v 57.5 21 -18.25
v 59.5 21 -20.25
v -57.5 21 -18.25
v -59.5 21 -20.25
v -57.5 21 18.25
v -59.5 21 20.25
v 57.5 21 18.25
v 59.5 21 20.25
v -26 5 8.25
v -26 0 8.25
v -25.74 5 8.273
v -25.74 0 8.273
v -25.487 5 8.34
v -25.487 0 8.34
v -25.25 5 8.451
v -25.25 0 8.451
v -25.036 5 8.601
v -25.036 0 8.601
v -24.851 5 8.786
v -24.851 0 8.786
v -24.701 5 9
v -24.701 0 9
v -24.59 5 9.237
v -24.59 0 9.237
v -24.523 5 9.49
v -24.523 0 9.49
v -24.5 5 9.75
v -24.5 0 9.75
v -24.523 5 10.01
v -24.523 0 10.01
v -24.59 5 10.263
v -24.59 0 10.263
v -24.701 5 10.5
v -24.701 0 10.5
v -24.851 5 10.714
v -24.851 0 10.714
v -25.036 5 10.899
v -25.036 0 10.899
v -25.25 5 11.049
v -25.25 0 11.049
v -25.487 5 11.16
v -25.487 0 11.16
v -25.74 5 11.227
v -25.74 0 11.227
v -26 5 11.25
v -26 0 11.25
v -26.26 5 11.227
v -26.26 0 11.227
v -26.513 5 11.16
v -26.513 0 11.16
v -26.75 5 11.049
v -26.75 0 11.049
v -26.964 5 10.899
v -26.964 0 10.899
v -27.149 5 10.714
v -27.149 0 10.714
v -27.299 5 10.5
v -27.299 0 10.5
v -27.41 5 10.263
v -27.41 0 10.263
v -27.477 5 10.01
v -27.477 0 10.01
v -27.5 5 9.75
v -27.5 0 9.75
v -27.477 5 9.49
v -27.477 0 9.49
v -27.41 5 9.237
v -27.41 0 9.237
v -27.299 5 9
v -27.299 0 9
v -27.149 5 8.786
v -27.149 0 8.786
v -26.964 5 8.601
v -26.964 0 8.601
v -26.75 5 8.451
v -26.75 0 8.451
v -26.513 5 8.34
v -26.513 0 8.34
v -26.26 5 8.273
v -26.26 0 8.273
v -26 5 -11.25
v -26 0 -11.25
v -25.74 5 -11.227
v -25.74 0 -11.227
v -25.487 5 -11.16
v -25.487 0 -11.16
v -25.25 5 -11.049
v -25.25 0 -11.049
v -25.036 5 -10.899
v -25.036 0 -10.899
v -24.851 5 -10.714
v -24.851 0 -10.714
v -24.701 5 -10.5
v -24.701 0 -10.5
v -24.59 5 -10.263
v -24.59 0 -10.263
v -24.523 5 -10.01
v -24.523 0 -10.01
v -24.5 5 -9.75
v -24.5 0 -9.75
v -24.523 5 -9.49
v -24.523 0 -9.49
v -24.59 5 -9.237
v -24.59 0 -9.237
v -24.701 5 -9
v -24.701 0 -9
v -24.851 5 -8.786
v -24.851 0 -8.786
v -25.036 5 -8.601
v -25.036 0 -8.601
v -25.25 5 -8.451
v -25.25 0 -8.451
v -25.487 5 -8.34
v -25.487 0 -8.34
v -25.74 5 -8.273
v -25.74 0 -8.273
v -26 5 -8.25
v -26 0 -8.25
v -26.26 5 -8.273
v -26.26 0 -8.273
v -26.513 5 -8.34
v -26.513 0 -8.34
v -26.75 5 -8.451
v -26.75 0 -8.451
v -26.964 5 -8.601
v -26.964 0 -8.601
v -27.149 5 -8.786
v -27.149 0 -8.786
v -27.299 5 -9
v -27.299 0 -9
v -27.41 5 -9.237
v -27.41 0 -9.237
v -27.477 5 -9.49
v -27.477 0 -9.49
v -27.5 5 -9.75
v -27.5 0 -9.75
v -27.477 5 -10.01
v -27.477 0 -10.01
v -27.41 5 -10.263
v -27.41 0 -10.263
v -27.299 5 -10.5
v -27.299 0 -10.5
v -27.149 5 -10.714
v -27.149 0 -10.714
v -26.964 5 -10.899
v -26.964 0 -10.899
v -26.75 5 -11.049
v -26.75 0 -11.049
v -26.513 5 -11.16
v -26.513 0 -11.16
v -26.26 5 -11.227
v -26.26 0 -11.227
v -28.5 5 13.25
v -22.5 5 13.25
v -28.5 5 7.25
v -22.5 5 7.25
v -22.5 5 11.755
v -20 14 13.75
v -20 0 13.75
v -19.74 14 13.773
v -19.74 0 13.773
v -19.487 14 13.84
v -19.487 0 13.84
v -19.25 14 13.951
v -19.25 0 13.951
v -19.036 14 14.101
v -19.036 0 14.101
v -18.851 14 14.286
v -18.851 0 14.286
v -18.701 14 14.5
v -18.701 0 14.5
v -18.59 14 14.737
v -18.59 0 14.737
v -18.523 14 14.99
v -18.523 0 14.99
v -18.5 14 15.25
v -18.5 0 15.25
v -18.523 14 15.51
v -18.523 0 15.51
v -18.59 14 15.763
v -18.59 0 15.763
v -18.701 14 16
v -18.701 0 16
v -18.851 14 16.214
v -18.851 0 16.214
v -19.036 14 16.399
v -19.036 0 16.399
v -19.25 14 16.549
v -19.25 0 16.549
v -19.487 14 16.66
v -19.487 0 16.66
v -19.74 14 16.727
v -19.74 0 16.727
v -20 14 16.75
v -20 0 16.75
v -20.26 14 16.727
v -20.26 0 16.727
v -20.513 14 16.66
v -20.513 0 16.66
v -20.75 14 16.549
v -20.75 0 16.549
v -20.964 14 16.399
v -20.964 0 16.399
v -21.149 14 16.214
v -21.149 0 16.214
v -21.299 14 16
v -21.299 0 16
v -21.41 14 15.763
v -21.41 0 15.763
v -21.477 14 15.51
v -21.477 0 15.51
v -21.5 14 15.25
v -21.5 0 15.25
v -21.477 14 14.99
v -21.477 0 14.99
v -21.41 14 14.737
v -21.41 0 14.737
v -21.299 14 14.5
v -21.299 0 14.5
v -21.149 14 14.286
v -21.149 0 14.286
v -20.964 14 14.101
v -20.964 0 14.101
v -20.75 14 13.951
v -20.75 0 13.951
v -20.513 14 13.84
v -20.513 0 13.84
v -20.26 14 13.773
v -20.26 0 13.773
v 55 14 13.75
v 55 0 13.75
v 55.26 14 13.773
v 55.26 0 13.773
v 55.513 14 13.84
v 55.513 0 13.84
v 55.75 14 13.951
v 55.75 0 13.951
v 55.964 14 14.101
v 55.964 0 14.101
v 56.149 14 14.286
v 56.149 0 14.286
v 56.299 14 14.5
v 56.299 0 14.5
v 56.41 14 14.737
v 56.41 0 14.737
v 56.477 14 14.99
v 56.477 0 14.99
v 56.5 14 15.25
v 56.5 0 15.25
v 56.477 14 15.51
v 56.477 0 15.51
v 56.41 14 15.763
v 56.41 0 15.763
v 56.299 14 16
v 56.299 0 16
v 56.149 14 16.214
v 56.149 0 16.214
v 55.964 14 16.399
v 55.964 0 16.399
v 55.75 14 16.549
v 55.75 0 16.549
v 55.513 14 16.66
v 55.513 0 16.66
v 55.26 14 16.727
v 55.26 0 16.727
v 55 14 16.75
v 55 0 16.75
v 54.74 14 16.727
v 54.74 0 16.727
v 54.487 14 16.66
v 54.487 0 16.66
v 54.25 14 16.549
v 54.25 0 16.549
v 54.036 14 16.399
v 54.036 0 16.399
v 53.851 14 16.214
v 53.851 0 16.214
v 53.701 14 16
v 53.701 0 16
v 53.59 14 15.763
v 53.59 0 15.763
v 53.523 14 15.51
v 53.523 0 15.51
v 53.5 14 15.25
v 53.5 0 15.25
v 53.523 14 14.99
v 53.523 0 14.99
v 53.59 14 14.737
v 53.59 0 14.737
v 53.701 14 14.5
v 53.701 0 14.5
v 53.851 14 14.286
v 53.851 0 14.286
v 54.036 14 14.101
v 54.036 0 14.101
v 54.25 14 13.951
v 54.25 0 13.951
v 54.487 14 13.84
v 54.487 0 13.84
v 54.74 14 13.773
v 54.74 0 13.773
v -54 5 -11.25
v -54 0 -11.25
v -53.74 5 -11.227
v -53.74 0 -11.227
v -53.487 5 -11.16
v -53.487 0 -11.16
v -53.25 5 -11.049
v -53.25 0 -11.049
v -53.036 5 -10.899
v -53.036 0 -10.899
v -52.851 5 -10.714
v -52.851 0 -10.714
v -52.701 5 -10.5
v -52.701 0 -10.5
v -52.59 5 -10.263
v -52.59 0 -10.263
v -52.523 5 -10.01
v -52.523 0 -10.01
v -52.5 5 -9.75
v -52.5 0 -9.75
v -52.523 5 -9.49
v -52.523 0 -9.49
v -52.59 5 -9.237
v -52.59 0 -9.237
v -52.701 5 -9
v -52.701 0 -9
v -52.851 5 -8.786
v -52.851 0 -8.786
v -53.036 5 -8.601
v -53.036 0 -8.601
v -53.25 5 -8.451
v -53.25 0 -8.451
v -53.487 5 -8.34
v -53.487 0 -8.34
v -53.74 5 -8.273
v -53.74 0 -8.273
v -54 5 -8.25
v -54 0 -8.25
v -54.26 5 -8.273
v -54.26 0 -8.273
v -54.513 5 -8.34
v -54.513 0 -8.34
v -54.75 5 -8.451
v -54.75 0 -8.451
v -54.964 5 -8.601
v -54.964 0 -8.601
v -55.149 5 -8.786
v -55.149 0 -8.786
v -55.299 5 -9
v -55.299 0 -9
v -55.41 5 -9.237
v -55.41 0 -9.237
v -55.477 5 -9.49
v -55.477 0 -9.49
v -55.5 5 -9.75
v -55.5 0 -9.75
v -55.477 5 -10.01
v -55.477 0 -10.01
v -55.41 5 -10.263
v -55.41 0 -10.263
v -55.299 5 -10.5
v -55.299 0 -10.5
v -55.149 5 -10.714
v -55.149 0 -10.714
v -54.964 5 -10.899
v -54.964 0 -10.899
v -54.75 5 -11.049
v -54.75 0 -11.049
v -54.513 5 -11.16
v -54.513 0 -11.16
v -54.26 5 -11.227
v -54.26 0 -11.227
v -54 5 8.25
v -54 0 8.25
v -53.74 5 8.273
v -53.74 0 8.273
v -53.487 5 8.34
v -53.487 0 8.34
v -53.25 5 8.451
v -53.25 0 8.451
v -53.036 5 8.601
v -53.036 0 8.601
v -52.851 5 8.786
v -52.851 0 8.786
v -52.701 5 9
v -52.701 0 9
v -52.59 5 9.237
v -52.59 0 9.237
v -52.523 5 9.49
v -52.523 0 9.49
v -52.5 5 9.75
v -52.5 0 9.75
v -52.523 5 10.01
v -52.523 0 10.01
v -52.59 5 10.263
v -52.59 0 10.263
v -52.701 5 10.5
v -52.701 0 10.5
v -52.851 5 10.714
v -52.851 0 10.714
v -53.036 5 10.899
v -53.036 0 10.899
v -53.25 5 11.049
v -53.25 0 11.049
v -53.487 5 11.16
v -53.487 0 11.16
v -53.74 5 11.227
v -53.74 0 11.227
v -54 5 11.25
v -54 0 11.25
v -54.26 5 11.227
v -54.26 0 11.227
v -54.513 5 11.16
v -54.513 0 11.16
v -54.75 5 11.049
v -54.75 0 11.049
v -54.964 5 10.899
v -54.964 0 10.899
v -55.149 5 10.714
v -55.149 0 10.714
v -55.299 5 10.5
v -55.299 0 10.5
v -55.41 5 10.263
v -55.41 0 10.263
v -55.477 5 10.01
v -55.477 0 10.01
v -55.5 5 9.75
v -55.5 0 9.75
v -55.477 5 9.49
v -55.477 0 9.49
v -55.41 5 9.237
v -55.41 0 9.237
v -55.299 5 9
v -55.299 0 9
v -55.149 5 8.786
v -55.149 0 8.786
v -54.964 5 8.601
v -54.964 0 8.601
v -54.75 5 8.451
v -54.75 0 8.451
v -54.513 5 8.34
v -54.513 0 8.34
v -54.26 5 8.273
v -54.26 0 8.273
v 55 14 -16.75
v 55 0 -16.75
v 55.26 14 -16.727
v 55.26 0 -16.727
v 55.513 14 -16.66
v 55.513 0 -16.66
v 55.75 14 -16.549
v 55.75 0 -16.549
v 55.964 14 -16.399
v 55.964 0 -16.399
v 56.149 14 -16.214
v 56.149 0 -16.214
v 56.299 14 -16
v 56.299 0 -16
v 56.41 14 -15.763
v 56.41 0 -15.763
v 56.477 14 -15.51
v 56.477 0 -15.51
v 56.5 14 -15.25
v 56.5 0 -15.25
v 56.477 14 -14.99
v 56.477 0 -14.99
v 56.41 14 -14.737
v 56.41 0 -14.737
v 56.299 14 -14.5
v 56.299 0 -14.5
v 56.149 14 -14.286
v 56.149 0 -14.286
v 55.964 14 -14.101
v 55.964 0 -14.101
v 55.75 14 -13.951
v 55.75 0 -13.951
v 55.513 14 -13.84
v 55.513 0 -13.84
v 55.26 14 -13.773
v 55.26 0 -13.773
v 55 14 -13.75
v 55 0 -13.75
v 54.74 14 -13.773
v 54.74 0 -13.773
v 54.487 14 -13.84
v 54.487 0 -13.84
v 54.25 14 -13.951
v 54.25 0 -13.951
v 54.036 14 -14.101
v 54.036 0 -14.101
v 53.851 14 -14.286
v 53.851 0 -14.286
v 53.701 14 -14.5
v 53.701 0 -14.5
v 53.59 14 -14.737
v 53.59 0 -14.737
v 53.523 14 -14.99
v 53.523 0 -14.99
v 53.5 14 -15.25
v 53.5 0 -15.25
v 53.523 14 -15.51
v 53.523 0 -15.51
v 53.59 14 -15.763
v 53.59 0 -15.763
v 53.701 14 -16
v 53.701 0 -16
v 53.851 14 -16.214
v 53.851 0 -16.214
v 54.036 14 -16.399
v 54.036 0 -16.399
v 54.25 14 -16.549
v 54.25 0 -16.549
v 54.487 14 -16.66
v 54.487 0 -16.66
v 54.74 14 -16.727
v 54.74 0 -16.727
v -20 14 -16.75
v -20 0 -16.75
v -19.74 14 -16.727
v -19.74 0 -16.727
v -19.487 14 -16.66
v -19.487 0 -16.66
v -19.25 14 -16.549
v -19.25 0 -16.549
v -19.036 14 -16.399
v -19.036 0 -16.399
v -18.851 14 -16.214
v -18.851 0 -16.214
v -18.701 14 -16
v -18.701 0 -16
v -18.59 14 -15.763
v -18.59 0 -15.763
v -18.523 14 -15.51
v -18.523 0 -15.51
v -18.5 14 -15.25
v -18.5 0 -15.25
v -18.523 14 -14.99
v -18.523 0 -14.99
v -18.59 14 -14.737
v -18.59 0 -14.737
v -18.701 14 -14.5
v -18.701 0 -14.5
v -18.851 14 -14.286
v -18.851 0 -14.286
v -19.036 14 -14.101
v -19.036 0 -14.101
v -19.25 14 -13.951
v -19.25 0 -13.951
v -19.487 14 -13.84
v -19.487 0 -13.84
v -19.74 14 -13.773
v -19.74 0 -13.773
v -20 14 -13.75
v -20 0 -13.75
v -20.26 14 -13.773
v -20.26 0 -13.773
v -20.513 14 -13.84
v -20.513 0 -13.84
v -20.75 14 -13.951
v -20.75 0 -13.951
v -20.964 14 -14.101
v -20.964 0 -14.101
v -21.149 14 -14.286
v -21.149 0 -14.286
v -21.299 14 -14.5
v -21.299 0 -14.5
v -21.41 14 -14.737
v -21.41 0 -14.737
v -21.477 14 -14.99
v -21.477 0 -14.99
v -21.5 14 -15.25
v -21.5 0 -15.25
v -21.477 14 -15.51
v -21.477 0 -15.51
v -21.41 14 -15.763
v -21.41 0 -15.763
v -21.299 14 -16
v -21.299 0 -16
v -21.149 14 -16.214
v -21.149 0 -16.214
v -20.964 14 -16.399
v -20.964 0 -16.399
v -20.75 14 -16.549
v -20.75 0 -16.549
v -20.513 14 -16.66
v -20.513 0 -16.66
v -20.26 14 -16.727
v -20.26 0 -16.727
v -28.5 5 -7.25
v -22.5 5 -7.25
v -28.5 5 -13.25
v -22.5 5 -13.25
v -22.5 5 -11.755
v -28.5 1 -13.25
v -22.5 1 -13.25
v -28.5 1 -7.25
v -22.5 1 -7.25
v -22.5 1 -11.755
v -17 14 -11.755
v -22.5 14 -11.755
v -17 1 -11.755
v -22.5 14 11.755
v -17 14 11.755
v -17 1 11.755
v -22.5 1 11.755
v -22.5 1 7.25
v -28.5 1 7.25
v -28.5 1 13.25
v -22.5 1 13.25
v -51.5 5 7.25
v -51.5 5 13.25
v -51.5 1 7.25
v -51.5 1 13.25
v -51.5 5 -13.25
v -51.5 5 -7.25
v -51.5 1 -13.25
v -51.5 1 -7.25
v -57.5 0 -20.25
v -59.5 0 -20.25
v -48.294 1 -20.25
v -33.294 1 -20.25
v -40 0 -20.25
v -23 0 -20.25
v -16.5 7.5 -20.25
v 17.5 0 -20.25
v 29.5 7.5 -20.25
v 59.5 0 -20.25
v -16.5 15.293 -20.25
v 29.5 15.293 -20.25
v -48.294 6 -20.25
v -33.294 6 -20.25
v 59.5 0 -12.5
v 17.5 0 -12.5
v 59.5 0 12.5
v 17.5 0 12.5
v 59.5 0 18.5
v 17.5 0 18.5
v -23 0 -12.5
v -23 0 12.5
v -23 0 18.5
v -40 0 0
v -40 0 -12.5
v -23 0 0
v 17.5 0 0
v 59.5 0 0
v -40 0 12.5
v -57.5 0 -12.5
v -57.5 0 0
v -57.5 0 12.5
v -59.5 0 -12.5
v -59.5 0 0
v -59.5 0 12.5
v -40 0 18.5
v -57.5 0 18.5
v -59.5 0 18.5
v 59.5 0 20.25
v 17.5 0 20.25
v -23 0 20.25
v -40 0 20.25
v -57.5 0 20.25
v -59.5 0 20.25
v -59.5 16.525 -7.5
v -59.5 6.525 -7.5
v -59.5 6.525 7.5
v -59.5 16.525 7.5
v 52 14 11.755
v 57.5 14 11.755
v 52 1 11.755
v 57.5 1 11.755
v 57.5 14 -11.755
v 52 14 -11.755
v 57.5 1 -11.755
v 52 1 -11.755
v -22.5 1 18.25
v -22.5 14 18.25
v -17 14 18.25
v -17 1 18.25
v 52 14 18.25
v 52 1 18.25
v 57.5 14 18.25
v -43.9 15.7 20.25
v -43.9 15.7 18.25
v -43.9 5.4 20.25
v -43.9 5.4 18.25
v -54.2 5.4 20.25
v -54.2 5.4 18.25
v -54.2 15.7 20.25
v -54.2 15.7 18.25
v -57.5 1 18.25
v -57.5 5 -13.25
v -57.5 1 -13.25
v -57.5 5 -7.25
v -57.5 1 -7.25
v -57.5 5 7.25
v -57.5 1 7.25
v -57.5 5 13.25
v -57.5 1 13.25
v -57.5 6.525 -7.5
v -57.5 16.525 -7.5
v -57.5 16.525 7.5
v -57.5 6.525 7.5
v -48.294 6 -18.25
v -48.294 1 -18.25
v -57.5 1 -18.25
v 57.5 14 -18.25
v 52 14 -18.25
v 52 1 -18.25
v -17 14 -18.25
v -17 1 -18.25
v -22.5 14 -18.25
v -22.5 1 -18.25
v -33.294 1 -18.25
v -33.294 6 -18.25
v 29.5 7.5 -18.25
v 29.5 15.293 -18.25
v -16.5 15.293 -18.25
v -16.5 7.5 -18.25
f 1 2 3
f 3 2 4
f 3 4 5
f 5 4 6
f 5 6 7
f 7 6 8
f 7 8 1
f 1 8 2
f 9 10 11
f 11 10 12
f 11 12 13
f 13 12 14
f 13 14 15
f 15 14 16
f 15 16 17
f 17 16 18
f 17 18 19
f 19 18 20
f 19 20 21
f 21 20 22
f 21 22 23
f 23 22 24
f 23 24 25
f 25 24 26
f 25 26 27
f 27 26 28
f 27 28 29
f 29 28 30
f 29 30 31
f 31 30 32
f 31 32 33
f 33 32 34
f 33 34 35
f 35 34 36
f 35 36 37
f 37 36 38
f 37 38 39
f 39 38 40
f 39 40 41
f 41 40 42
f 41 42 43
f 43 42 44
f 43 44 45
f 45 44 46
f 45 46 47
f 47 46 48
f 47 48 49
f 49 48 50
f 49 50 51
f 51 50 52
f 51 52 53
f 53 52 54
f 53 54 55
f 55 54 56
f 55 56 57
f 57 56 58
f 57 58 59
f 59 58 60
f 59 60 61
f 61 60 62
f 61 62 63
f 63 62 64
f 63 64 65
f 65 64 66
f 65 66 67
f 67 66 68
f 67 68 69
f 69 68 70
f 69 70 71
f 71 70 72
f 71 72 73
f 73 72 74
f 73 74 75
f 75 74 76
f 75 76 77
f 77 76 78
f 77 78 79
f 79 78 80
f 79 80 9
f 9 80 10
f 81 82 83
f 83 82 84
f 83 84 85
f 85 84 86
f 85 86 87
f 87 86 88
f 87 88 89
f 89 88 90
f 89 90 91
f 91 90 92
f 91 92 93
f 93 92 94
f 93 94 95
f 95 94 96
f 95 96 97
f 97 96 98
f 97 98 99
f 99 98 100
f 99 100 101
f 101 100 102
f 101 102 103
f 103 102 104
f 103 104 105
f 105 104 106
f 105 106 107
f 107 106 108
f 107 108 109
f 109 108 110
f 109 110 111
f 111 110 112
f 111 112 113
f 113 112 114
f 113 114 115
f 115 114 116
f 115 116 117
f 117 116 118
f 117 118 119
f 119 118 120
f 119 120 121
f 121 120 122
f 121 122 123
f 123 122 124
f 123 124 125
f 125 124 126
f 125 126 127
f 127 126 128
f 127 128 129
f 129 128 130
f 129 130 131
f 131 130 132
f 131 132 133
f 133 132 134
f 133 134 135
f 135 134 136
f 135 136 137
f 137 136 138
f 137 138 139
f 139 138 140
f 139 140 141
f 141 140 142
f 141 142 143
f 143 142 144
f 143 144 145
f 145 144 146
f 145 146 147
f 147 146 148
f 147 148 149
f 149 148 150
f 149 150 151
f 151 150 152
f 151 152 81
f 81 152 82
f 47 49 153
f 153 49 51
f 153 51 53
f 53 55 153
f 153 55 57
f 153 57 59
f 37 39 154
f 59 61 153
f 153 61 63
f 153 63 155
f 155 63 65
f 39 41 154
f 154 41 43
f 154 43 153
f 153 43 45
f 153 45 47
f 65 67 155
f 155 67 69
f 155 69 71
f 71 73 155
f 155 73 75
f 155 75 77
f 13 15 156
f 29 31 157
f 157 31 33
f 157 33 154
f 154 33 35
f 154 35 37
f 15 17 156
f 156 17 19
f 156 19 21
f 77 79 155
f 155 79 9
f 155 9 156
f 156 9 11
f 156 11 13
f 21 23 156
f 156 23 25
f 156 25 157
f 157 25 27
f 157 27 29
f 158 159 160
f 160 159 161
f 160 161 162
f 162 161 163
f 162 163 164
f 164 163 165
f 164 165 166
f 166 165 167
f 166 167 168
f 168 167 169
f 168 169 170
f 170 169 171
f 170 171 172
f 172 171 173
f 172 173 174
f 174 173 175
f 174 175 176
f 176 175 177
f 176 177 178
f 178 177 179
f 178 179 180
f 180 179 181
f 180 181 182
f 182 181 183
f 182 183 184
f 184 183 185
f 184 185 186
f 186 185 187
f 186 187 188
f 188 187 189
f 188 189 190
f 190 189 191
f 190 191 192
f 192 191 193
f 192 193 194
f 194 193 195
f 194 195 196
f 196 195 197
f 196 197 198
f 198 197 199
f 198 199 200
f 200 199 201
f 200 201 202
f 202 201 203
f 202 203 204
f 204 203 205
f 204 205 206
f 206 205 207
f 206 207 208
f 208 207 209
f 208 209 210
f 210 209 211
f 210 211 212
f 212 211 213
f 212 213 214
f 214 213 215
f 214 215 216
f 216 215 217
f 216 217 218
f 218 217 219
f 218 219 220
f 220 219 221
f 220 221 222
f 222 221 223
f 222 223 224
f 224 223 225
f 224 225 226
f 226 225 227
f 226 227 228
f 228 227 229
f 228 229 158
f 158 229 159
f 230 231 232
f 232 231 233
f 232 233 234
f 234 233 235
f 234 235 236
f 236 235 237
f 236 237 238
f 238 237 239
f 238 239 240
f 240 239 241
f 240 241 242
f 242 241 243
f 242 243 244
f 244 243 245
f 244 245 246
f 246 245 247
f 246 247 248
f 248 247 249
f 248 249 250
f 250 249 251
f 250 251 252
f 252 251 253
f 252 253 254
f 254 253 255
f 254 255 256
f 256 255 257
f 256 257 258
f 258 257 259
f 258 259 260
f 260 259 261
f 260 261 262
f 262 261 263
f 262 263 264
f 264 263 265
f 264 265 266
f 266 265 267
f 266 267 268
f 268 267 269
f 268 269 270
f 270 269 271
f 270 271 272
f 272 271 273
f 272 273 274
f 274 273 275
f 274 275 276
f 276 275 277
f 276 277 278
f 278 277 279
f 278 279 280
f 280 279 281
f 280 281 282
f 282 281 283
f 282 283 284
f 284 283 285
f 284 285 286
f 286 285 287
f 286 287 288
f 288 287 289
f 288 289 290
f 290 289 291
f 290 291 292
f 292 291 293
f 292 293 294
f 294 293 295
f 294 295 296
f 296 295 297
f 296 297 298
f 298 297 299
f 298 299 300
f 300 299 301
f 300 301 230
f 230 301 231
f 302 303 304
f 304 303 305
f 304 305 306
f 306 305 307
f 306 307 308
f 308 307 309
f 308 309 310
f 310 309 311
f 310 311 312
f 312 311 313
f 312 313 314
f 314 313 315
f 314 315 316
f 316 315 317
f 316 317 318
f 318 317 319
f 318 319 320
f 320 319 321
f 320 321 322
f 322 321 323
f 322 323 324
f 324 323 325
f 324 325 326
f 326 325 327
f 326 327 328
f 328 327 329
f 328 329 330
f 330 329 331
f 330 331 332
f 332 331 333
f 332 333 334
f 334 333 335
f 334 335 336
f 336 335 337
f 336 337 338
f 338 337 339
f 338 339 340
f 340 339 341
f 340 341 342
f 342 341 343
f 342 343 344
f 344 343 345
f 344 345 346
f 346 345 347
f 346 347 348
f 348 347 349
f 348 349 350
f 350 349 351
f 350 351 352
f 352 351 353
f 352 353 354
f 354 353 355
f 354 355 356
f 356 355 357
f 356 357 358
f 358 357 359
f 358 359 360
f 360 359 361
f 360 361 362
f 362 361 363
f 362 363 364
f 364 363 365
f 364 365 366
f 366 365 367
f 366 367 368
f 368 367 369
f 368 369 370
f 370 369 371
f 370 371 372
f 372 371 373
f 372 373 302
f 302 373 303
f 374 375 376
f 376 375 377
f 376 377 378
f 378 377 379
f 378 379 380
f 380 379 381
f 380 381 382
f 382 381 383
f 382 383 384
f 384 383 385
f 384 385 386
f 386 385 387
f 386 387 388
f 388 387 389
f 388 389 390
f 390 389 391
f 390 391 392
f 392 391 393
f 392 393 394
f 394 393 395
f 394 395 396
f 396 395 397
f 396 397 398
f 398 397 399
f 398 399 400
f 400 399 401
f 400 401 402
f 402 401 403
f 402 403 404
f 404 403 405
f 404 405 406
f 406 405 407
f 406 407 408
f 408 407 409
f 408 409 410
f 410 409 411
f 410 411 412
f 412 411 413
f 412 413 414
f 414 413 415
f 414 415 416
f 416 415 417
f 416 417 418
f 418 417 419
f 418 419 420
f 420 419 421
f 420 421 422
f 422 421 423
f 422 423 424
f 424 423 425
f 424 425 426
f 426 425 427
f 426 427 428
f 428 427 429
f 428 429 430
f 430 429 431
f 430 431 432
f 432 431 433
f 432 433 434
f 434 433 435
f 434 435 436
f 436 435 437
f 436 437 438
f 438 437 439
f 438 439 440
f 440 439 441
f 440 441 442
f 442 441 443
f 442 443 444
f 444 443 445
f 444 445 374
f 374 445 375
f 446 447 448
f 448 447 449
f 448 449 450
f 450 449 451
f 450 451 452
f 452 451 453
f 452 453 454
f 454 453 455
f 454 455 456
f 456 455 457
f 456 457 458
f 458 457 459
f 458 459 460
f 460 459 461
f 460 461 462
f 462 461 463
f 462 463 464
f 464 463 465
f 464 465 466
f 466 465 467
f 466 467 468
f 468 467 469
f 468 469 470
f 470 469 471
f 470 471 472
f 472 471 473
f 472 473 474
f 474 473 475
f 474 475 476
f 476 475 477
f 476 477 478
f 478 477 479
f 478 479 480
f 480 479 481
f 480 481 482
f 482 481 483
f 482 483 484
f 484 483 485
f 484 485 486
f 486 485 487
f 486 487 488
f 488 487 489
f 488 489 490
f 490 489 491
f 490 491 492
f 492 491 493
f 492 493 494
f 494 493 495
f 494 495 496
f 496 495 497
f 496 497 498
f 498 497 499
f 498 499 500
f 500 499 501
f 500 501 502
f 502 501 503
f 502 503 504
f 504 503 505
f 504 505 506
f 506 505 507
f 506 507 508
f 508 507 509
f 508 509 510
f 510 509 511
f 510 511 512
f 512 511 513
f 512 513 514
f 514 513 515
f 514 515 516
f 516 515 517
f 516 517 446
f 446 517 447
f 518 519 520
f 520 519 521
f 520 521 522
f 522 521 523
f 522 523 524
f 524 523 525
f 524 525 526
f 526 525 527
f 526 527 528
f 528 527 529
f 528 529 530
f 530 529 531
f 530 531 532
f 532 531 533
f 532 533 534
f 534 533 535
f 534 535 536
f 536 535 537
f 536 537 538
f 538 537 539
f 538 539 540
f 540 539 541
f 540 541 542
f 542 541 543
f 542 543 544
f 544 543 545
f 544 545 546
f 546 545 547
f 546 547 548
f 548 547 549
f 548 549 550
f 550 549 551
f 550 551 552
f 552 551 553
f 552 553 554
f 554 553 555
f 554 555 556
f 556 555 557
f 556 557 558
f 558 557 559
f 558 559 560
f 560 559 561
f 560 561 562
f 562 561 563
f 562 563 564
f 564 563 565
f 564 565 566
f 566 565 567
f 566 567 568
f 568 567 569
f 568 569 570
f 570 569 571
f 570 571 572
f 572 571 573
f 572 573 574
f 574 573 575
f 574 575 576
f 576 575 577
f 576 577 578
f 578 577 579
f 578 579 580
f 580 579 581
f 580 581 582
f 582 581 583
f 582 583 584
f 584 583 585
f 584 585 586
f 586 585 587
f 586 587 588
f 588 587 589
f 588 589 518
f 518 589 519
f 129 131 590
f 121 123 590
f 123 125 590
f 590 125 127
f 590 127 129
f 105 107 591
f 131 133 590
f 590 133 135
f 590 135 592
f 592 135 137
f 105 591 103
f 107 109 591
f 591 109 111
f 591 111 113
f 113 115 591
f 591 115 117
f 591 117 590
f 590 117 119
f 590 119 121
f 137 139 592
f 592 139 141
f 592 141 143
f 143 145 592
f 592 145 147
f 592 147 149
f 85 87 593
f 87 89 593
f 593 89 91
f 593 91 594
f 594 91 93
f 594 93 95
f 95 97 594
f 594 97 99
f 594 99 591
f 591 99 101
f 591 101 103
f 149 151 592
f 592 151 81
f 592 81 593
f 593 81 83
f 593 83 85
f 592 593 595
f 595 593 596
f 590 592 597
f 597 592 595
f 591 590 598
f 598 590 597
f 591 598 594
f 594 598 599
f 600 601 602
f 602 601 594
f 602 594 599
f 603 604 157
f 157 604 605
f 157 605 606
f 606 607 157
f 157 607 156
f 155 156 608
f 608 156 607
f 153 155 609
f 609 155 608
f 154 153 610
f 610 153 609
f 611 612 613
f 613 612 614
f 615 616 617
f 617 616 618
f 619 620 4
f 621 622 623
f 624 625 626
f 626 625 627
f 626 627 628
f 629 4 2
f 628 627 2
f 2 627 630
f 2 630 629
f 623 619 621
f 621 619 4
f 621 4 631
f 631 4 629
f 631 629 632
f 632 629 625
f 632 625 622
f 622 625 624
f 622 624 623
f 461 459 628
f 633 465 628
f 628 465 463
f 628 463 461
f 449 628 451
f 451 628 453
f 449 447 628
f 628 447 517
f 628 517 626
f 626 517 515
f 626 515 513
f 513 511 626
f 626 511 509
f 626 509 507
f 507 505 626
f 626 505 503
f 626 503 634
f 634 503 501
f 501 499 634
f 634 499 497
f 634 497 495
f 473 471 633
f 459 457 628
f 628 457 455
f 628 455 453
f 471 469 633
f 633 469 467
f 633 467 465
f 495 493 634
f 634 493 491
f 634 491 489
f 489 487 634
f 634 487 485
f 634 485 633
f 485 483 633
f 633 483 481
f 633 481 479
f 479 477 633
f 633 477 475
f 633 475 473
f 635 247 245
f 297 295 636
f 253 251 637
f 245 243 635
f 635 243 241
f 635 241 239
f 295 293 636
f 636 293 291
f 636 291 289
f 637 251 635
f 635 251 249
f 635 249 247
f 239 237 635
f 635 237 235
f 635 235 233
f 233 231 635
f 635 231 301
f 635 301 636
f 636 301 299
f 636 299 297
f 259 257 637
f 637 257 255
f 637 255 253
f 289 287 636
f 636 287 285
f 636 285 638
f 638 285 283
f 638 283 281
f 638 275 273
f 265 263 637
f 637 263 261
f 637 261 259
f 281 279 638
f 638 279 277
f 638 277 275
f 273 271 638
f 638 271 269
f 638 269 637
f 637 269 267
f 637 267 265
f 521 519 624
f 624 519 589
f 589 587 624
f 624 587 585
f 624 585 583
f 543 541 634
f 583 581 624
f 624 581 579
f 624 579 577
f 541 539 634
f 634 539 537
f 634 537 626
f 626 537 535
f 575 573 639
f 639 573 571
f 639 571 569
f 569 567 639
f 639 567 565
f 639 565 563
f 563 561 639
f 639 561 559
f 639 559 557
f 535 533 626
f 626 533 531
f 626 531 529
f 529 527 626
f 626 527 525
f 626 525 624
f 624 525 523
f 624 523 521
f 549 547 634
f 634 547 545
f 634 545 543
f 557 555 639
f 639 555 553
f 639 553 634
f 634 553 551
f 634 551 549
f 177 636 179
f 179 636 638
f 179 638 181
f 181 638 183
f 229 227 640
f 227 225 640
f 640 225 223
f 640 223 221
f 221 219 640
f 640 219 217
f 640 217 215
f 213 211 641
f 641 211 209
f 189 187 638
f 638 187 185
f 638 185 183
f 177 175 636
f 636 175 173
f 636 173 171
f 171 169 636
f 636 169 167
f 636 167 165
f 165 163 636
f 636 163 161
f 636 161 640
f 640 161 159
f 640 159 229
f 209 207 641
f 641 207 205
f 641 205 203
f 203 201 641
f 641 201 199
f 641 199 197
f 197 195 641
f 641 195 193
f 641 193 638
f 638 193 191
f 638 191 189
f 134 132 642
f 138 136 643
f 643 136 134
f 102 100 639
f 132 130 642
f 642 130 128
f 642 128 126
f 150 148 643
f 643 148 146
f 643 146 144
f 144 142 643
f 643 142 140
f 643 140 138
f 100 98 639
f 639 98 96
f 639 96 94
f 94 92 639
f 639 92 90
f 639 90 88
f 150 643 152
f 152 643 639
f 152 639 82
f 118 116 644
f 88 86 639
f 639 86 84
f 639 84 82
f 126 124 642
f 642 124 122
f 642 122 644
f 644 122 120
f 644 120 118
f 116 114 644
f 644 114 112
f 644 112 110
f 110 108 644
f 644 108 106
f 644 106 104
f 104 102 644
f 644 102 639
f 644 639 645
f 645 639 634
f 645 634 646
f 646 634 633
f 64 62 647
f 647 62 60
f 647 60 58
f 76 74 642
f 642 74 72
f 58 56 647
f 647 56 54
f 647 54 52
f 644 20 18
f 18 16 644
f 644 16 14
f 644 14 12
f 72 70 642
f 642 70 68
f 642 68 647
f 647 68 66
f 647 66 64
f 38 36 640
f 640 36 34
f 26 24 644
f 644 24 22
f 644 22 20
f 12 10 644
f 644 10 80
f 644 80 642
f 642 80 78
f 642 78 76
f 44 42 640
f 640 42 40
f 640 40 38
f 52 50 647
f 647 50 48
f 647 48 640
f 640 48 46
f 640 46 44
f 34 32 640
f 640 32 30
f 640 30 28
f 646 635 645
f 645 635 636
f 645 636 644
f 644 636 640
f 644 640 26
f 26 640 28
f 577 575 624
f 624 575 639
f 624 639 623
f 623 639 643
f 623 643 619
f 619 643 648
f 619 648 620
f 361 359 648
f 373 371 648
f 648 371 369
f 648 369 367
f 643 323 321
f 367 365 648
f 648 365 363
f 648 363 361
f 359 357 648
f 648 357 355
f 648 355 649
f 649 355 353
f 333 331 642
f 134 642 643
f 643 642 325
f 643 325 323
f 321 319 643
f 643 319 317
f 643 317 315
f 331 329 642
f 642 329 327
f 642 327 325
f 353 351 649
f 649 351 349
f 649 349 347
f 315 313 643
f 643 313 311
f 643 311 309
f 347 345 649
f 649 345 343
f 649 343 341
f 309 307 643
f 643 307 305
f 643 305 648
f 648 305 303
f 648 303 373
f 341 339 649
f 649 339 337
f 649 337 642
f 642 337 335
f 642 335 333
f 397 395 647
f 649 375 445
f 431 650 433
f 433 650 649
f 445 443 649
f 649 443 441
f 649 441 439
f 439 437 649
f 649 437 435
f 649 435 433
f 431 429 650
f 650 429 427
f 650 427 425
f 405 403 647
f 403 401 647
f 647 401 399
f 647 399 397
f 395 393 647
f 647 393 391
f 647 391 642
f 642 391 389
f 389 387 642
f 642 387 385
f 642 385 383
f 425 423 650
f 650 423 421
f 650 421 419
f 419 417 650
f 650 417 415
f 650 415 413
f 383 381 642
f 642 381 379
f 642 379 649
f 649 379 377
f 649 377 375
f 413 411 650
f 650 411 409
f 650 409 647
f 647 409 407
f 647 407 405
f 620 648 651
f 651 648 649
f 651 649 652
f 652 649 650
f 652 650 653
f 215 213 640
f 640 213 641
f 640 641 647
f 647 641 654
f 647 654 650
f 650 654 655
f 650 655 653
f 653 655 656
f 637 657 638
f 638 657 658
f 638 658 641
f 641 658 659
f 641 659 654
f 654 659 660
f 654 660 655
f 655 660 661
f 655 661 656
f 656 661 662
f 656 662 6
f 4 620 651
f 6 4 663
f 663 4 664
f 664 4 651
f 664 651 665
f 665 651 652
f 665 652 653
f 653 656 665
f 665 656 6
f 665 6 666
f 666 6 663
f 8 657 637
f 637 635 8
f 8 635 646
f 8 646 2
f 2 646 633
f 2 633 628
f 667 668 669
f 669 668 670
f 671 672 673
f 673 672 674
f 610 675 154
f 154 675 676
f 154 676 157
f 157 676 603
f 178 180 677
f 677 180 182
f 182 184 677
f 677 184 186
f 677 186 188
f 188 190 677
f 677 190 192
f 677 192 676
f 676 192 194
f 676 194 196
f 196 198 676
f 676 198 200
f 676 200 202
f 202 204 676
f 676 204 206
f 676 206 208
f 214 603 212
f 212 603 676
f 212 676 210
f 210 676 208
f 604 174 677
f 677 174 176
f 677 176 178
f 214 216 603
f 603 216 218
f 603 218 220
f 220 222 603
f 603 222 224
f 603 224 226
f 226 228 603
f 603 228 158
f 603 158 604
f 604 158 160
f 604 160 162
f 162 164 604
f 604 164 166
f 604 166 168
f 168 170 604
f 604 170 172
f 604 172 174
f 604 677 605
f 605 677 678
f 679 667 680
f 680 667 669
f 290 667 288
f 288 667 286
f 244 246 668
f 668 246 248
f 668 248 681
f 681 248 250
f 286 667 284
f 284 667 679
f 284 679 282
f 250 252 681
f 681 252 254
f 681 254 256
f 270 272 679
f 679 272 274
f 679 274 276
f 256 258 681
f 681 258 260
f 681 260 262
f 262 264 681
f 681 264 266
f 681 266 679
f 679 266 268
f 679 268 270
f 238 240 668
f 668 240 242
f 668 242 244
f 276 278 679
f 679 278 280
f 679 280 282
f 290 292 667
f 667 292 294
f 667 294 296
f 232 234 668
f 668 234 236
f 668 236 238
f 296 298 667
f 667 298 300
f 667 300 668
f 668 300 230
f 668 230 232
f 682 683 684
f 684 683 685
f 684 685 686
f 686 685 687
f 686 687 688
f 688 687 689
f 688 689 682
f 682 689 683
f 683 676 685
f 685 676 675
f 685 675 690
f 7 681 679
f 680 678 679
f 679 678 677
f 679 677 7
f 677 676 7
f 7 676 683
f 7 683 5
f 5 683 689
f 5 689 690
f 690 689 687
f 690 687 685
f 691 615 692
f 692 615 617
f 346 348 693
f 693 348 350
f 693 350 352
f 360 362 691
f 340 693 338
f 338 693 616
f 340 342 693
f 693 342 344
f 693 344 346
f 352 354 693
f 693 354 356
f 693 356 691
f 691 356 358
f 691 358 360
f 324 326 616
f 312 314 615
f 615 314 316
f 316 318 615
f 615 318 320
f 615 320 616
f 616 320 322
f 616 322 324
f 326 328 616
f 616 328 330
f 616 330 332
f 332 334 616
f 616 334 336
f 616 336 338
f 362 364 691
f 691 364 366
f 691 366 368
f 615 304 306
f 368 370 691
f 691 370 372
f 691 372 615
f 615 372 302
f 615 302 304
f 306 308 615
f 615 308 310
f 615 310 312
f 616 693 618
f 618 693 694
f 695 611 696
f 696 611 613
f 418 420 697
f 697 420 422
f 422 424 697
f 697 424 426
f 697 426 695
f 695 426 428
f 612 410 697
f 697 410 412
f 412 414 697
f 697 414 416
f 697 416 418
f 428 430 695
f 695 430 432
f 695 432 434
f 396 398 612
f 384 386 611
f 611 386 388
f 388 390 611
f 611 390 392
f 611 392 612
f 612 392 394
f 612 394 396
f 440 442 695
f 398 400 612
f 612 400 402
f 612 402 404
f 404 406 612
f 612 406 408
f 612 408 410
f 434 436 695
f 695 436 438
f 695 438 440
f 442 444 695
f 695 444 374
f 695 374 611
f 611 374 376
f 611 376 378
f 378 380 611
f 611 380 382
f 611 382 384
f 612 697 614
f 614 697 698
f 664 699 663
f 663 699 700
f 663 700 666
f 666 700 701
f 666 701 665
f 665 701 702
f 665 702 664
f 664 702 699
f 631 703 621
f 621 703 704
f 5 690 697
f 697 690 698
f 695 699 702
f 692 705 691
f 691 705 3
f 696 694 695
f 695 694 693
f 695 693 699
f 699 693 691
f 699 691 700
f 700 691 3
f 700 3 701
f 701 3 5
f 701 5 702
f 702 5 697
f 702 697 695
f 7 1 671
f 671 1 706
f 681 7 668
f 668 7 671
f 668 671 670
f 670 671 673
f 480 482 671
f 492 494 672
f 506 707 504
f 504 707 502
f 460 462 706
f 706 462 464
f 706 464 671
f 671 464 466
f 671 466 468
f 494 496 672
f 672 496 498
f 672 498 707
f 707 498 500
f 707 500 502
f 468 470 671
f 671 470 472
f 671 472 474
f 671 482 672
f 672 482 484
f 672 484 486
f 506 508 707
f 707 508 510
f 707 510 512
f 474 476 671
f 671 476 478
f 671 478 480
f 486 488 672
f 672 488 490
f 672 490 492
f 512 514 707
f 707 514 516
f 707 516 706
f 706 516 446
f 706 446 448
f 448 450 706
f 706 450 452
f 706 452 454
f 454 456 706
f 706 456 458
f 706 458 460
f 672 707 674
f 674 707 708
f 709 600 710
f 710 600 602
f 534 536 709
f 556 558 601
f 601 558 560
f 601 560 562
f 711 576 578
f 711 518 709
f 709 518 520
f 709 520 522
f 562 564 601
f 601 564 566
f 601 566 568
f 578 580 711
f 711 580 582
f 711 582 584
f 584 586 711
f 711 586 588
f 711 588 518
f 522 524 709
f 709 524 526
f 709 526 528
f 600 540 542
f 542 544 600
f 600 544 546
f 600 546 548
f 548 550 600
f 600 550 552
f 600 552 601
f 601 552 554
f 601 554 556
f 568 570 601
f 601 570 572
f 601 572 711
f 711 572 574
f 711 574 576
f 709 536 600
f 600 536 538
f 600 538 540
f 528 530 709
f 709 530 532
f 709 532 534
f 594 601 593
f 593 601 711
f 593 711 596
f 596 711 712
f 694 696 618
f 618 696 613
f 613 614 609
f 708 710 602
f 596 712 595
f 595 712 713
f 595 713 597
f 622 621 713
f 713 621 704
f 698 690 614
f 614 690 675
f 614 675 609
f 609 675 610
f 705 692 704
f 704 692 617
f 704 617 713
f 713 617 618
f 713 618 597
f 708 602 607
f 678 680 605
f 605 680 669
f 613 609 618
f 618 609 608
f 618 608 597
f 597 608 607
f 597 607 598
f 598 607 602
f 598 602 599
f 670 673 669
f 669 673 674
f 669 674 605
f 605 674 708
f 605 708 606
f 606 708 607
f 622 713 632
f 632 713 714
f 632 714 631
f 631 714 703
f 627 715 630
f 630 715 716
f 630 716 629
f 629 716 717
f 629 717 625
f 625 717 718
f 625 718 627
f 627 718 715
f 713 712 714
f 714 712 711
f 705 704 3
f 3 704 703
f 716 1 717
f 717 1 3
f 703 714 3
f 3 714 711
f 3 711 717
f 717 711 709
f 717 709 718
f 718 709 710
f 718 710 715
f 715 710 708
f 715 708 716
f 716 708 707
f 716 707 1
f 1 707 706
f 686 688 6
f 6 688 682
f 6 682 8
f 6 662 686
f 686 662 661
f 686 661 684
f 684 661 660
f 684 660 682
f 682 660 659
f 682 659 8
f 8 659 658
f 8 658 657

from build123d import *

# Parameters (mm, degrees)
SKETCH1_W                = 115
SKETCH1_H                = 36.5
BOSS_EXTRUDE1_DEPTH      = 1
BOSS_EXTRUDE2_DEPTH      = 20
BOSS_EXTRUDE2_DEPTH_BACK = 1
SKETCH2_W                = 119
SKETCH2_H                = 40.5
SKETCH2_W_2              = 115
SKETCH2_H_2              = 36.5
SKETCH3_R                = 1.5
SKETCH3_W                = 6
SKETCH3_H                = 6
BOSS_EXTRUDE3_DEPTH      = 4
SKETCH4_R                = 1.5
SKETCH4_W                = 5.5
SKETCH4_H                = 6.495155074
BOSS_EXTRUDE4_DEPTH      = 13
SKETCH5_W                = 15
SKETCH5_H                = 10
CUT_EXTRUDE1_DEPTH       = 8
SKETCH6_W                = 46
SKETCH6_H                = 7.792677535
CUT_EXTRUDE2_DEPTH       = 8
SKETCH7_W                = 10.3
SKETCH7_H                = 10.3
CUT_EXTRUDE3_DEPTH       = 8
SKETCH8_W                = 15
SKETCH8_H                = 5
CUT_EXTRUDE4_DEPTH       = 8
SKETCH9_W                = 119
SKETCH9_H                = 40.5
SKETCH9_W_2              = 17
SKETCH9_H_2              = 17
SKETCH9_W_3              = 73
SKETCH9_H_3              = 26
BOSS_EXTRUDE5_DEPTH      = 3
CUT_EXTRUDE5_DEPTH       = 10
CUT_EXTRUDE5_DEPTH_BACK  = 10
SKETCH10_R               = 1.5


with BuildPart() as part:
    # Sketch1 → Boss-Extrude1 (new body)
    with BuildSketch(Plane(origin=(0, 0, 0), x_dir=(1, 0, 0), z_dir=(0, 1, 0))):
        Rectangle(SKETCH1_W, SKETCH1_H)
    extrude(amount=BOSS_EXTRUDE1_DEPTH)


with BuildPart() as body_2:
    # Sketch2 → Boss-Extrude2 (new, two sides: drawn at the far end of the back side and taken through both)
    with BuildSketch(Plane(origin=(0, 1, 0), x_dir=(1, 0, 0), z_dir=(0, 1, 0)).offset(-BOSS_EXTRUDE2_DEPTH_BACK)):
        Rectangle(SKETCH2_W, SKETCH2_H)
        Rectangle(SKETCH2_W_2, SKETCH2_H_2, mode=Mode.SUBTRACT)
    extrude(amount=BOSS_EXTRUDE2_DEPTH + BOSS_EXTRUDE2_DEPTH_BACK)

    # Intersect1: read off the stored shape, not the designer's step
    # Intersect1: union part
    add(part.part)

    # Sketch3 → Boss-Extrude3 (add)
    # profile 1 of 4: a face of its own
    with BuildSketch(Plane(origin=(0, 1, 0), x_dir=(1, 0, 0), z_dir=(0, 1, 0))):
        Polygon((-51.5, 7.25), (-51.5, 13.25), (-54, 13.25), (-57.5, 13.25), (-57.5, 9.75), (-57.5, 7.25), align=None)
        with Locations(Location((-54, 9.75, 0), (0, 0, 270))):
            Circle(SKETCH3_R, mode=Mode.SUBTRACT)
    # profile 2 of 4: a face of its own
    with BuildSketch(Plane(origin=(0, 1, 0), x_dir=(1, 0, 0), z_dir=(0, 1, 0))):
        with Locations((-25.5, 10.25)):
            Rectangle(SKETCH3_W, SKETCH3_H)
        with Locations(Location((-26, 9.75, 0), (0, 0, 90))):
            Circle(SKETCH3_R, mode=Mode.SUBTRACT)
    # profile 3 of 4: a face of its own
    with BuildSketch(Plane(origin=(0, 1, 0), x_dir=(1, 0, 0), z_dir=(0, 1, 0))):
        with Locations((-25.5, -10.25)):
            Rectangle(SKETCH3_W, SKETCH3_H)
        with Locations(Location((-26, -9.75, 0), (0, 0, 270))):
            Circle(SKETCH3_R, mode=Mode.SUBTRACT)
    # profile 4 of 4: a face of its own
    with BuildSketch(Plane(origin=(0, 1, 0), x_dir=(1, 0, 0), z_dir=(0, 1, 0))):
        with Locations((-54.5, -10.25)):
            Rectangle(SKETCH3_W, SKETCH3_H)
        with Locations(Location((-54, -9.75, 0), (0, 0, 90))):
            Circle(SKETCH3_R, mode=Mode.SUBTRACT)
    extrude(amount=BOSS_EXTRUDE3_DEPTH)

    # Sketch4 → Boss-Extrude4 (add)
    # profile 1 of 4: a face of its own
    with BuildSketch(Plane(origin=(0, 1, 0), x_dir=(1, 0, 0), z_dir=(0, 1, 0))):
        Polygon((-22.5, 13.25), (-22.5, 11.754844926), (-17, 11.754844926), (-17, 18.25), (-20, 18.25), (-22.5, 18.25), (-22.5, 15.25), align=None)
        with Locations(Location((-20, 15.25, 0), (0, 0, 90))):
            Circle(SKETCH4_R, mode=Mode.SUBTRACT)
    # profile 2 of 4: a face of its own
    with BuildSketch(Plane(origin=(0, 1, 0), x_dir=(1, 0, 0), z_dir=(0, 1, 0))):
        with Locations((-19.75, -15.002422463)):
            Rectangle(SKETCH4_W, SKETCH4_H)
        with Locations(Location((-20, -15.25, 0), (0, 0, 90))):
            Circle(SKETCH4_R, mode=Mode.SUBTRACT)
    # profile 3 of 4: a face of its own
    with BuildSketch(Plane(origin=(0, 1, 0), x_dir=(1, 0, 0), z_dir=(0, 1, 0))):
        with Locations((54.75, -15.002422463)):
            Rectangle(SKETCH4_W, SKETCH4_H)
        with Locations(Location((55, -15.25, 0), (0, 0, 90))):
            Circle(SKETCH4_R, mode=Mode.SUBTRACT)
    # profile 4 of 4: a face of its own
    with BuildSketch(Plane(origin=(0, 1, 0), x_dir=(1, 0, 0), z_dir=(0, 1, 0))):
        with Locations((54.75, 15.002422463)):
            Rectangle(SKETCH4_W, SKETCH4_H)
        with Locations(Location((55, 15.25, 0), (0, 0, 90))):
            Circle(SKETCH4_R, mode=Mode.SUBTRACT)
    extrude(amount=BOSS_EXTRUDE4_DEPTH)

    # Sketch5 → Cut-Extrude1 (cut)
    with BuildSketch(Plane.ZY.offset(59.5)):
        with Locations((0, 11.525411997)):
            Rectangle(SKETCH5_W, SKETCH5_H)
    extrude(amount=-CUT_EXTRUDE1_DEPTH, mode=Mode.SUBTRACT)

    # Sketch6 → Cut-Extrude2 (cut)
    with BuildSketch(Plane(origin=(0, 0, -20.25), x_dir=(-1, 0, 0), z_dir=(0, 0, -1))):
        with Locations((-6.5, 11.396338768)):
            Rectangle(SKETCH6_W, SKETCH6_H)
    extrude(amount=-CUT_EXTRUDE2_DEPTH, mode=Mode.SUBTRACT)

    # Sketch7 → Cut-Extrude3 (cut)
    with BuildSketch(Plane.XY.offset(20.25)):
        with Locations((-49.05, 10.55)):
            Rectangle(SKETCH7_W, SKETCH7_H)
    extrude(amount=-CUT_EXTRUDE3_DEPTH, mode=Mode.SUBTRACT)

    # Sketch8 → Cut-Extrude4 (cut)
    with BuildSketch(Plane(origin=(0, 0, -20.25), x_dir=(-1, 0, 0), z_dir=(0, 0, -1))):
        with Locations((40.794043984, 3.5)):
            Rectangle(SKETCH8_W, SKETCH8_H)
    extrude(amount=-CUT_EXTRUDE4_DEPTH, mode=Mode.SUBTRACT)

    # Sketch10 → Cut-Extrude5 (cut, two sides: drawn at the far end of the back side and taken through both)
    with BuildSketch(Plane(origin=(0, 1, 0), x_dir=(1, 0, 0), z_dir=(0, 1, 0)).offset(-CUT_EXTRUDE5_DEPTH_BACK)):
        with Locations(Location((55, 15.25, 0), (0, 0, 90))):
            Circle(SKETCH10_R)
        with Locations(Location((55, -15.25, 0), (0, 0, 90))):
            Circle(SKETCH10_R)
        with Locations(Location((-54, -9.75, 0), (0, 0, 90))):
            Circle(SKETCH10_R)
        with Locations(Location((-20, -15.25, 0), (0, 0, 90))):
            Circle(SKETCH10_R)
        with Locations(Location((-26, -9.75, 0), (0, 0, 90))):
            Circle(SKETCH10_R)
        with Locations(Location((-20, 15.25, 0), (0, 0, 90))):
            Circle(SKETCH10_R)
        with Locations(Location((-26, 9.75, 0), (0, 0, 90))):
            Circle(SKETCH10_R)
        with Locations(Location((-54, 9.75, 0), (0, 0, 90))):
            Circle(SKETCH10_R)
    extrude(amount=CUT_EXTRUDE5_DEPTH + CUT_EXTRUDE5_DEPTH_BACK, mode=Mode.SUBTRACT)


with BuildPart() as body_2_2:
    # Sketch9 → Boss-Extrude5 (new body)
    with BuildSketch(Plane(origin=(0, 21, 0), x_dir=(1, 0, 0), z_dir=(0, 1, 0))):
        Rectangle(SKETCH9_W, SKETCH9_H)
        with Locations((-40, 1.75)):
            Rectangle(SKETCH9_W_2, SKETCH9_H_2, mode=Mode.SUBTRACT)
        with Locations((17.25, -0.25)):
            Rectangle(SKETCH9_W_3, SKETCH9_H_3, mode=Mode.SUBTRACT)
    extrude(amount=BOSS_EXTRUDE5_DEPTH)


solid = body_2.part
